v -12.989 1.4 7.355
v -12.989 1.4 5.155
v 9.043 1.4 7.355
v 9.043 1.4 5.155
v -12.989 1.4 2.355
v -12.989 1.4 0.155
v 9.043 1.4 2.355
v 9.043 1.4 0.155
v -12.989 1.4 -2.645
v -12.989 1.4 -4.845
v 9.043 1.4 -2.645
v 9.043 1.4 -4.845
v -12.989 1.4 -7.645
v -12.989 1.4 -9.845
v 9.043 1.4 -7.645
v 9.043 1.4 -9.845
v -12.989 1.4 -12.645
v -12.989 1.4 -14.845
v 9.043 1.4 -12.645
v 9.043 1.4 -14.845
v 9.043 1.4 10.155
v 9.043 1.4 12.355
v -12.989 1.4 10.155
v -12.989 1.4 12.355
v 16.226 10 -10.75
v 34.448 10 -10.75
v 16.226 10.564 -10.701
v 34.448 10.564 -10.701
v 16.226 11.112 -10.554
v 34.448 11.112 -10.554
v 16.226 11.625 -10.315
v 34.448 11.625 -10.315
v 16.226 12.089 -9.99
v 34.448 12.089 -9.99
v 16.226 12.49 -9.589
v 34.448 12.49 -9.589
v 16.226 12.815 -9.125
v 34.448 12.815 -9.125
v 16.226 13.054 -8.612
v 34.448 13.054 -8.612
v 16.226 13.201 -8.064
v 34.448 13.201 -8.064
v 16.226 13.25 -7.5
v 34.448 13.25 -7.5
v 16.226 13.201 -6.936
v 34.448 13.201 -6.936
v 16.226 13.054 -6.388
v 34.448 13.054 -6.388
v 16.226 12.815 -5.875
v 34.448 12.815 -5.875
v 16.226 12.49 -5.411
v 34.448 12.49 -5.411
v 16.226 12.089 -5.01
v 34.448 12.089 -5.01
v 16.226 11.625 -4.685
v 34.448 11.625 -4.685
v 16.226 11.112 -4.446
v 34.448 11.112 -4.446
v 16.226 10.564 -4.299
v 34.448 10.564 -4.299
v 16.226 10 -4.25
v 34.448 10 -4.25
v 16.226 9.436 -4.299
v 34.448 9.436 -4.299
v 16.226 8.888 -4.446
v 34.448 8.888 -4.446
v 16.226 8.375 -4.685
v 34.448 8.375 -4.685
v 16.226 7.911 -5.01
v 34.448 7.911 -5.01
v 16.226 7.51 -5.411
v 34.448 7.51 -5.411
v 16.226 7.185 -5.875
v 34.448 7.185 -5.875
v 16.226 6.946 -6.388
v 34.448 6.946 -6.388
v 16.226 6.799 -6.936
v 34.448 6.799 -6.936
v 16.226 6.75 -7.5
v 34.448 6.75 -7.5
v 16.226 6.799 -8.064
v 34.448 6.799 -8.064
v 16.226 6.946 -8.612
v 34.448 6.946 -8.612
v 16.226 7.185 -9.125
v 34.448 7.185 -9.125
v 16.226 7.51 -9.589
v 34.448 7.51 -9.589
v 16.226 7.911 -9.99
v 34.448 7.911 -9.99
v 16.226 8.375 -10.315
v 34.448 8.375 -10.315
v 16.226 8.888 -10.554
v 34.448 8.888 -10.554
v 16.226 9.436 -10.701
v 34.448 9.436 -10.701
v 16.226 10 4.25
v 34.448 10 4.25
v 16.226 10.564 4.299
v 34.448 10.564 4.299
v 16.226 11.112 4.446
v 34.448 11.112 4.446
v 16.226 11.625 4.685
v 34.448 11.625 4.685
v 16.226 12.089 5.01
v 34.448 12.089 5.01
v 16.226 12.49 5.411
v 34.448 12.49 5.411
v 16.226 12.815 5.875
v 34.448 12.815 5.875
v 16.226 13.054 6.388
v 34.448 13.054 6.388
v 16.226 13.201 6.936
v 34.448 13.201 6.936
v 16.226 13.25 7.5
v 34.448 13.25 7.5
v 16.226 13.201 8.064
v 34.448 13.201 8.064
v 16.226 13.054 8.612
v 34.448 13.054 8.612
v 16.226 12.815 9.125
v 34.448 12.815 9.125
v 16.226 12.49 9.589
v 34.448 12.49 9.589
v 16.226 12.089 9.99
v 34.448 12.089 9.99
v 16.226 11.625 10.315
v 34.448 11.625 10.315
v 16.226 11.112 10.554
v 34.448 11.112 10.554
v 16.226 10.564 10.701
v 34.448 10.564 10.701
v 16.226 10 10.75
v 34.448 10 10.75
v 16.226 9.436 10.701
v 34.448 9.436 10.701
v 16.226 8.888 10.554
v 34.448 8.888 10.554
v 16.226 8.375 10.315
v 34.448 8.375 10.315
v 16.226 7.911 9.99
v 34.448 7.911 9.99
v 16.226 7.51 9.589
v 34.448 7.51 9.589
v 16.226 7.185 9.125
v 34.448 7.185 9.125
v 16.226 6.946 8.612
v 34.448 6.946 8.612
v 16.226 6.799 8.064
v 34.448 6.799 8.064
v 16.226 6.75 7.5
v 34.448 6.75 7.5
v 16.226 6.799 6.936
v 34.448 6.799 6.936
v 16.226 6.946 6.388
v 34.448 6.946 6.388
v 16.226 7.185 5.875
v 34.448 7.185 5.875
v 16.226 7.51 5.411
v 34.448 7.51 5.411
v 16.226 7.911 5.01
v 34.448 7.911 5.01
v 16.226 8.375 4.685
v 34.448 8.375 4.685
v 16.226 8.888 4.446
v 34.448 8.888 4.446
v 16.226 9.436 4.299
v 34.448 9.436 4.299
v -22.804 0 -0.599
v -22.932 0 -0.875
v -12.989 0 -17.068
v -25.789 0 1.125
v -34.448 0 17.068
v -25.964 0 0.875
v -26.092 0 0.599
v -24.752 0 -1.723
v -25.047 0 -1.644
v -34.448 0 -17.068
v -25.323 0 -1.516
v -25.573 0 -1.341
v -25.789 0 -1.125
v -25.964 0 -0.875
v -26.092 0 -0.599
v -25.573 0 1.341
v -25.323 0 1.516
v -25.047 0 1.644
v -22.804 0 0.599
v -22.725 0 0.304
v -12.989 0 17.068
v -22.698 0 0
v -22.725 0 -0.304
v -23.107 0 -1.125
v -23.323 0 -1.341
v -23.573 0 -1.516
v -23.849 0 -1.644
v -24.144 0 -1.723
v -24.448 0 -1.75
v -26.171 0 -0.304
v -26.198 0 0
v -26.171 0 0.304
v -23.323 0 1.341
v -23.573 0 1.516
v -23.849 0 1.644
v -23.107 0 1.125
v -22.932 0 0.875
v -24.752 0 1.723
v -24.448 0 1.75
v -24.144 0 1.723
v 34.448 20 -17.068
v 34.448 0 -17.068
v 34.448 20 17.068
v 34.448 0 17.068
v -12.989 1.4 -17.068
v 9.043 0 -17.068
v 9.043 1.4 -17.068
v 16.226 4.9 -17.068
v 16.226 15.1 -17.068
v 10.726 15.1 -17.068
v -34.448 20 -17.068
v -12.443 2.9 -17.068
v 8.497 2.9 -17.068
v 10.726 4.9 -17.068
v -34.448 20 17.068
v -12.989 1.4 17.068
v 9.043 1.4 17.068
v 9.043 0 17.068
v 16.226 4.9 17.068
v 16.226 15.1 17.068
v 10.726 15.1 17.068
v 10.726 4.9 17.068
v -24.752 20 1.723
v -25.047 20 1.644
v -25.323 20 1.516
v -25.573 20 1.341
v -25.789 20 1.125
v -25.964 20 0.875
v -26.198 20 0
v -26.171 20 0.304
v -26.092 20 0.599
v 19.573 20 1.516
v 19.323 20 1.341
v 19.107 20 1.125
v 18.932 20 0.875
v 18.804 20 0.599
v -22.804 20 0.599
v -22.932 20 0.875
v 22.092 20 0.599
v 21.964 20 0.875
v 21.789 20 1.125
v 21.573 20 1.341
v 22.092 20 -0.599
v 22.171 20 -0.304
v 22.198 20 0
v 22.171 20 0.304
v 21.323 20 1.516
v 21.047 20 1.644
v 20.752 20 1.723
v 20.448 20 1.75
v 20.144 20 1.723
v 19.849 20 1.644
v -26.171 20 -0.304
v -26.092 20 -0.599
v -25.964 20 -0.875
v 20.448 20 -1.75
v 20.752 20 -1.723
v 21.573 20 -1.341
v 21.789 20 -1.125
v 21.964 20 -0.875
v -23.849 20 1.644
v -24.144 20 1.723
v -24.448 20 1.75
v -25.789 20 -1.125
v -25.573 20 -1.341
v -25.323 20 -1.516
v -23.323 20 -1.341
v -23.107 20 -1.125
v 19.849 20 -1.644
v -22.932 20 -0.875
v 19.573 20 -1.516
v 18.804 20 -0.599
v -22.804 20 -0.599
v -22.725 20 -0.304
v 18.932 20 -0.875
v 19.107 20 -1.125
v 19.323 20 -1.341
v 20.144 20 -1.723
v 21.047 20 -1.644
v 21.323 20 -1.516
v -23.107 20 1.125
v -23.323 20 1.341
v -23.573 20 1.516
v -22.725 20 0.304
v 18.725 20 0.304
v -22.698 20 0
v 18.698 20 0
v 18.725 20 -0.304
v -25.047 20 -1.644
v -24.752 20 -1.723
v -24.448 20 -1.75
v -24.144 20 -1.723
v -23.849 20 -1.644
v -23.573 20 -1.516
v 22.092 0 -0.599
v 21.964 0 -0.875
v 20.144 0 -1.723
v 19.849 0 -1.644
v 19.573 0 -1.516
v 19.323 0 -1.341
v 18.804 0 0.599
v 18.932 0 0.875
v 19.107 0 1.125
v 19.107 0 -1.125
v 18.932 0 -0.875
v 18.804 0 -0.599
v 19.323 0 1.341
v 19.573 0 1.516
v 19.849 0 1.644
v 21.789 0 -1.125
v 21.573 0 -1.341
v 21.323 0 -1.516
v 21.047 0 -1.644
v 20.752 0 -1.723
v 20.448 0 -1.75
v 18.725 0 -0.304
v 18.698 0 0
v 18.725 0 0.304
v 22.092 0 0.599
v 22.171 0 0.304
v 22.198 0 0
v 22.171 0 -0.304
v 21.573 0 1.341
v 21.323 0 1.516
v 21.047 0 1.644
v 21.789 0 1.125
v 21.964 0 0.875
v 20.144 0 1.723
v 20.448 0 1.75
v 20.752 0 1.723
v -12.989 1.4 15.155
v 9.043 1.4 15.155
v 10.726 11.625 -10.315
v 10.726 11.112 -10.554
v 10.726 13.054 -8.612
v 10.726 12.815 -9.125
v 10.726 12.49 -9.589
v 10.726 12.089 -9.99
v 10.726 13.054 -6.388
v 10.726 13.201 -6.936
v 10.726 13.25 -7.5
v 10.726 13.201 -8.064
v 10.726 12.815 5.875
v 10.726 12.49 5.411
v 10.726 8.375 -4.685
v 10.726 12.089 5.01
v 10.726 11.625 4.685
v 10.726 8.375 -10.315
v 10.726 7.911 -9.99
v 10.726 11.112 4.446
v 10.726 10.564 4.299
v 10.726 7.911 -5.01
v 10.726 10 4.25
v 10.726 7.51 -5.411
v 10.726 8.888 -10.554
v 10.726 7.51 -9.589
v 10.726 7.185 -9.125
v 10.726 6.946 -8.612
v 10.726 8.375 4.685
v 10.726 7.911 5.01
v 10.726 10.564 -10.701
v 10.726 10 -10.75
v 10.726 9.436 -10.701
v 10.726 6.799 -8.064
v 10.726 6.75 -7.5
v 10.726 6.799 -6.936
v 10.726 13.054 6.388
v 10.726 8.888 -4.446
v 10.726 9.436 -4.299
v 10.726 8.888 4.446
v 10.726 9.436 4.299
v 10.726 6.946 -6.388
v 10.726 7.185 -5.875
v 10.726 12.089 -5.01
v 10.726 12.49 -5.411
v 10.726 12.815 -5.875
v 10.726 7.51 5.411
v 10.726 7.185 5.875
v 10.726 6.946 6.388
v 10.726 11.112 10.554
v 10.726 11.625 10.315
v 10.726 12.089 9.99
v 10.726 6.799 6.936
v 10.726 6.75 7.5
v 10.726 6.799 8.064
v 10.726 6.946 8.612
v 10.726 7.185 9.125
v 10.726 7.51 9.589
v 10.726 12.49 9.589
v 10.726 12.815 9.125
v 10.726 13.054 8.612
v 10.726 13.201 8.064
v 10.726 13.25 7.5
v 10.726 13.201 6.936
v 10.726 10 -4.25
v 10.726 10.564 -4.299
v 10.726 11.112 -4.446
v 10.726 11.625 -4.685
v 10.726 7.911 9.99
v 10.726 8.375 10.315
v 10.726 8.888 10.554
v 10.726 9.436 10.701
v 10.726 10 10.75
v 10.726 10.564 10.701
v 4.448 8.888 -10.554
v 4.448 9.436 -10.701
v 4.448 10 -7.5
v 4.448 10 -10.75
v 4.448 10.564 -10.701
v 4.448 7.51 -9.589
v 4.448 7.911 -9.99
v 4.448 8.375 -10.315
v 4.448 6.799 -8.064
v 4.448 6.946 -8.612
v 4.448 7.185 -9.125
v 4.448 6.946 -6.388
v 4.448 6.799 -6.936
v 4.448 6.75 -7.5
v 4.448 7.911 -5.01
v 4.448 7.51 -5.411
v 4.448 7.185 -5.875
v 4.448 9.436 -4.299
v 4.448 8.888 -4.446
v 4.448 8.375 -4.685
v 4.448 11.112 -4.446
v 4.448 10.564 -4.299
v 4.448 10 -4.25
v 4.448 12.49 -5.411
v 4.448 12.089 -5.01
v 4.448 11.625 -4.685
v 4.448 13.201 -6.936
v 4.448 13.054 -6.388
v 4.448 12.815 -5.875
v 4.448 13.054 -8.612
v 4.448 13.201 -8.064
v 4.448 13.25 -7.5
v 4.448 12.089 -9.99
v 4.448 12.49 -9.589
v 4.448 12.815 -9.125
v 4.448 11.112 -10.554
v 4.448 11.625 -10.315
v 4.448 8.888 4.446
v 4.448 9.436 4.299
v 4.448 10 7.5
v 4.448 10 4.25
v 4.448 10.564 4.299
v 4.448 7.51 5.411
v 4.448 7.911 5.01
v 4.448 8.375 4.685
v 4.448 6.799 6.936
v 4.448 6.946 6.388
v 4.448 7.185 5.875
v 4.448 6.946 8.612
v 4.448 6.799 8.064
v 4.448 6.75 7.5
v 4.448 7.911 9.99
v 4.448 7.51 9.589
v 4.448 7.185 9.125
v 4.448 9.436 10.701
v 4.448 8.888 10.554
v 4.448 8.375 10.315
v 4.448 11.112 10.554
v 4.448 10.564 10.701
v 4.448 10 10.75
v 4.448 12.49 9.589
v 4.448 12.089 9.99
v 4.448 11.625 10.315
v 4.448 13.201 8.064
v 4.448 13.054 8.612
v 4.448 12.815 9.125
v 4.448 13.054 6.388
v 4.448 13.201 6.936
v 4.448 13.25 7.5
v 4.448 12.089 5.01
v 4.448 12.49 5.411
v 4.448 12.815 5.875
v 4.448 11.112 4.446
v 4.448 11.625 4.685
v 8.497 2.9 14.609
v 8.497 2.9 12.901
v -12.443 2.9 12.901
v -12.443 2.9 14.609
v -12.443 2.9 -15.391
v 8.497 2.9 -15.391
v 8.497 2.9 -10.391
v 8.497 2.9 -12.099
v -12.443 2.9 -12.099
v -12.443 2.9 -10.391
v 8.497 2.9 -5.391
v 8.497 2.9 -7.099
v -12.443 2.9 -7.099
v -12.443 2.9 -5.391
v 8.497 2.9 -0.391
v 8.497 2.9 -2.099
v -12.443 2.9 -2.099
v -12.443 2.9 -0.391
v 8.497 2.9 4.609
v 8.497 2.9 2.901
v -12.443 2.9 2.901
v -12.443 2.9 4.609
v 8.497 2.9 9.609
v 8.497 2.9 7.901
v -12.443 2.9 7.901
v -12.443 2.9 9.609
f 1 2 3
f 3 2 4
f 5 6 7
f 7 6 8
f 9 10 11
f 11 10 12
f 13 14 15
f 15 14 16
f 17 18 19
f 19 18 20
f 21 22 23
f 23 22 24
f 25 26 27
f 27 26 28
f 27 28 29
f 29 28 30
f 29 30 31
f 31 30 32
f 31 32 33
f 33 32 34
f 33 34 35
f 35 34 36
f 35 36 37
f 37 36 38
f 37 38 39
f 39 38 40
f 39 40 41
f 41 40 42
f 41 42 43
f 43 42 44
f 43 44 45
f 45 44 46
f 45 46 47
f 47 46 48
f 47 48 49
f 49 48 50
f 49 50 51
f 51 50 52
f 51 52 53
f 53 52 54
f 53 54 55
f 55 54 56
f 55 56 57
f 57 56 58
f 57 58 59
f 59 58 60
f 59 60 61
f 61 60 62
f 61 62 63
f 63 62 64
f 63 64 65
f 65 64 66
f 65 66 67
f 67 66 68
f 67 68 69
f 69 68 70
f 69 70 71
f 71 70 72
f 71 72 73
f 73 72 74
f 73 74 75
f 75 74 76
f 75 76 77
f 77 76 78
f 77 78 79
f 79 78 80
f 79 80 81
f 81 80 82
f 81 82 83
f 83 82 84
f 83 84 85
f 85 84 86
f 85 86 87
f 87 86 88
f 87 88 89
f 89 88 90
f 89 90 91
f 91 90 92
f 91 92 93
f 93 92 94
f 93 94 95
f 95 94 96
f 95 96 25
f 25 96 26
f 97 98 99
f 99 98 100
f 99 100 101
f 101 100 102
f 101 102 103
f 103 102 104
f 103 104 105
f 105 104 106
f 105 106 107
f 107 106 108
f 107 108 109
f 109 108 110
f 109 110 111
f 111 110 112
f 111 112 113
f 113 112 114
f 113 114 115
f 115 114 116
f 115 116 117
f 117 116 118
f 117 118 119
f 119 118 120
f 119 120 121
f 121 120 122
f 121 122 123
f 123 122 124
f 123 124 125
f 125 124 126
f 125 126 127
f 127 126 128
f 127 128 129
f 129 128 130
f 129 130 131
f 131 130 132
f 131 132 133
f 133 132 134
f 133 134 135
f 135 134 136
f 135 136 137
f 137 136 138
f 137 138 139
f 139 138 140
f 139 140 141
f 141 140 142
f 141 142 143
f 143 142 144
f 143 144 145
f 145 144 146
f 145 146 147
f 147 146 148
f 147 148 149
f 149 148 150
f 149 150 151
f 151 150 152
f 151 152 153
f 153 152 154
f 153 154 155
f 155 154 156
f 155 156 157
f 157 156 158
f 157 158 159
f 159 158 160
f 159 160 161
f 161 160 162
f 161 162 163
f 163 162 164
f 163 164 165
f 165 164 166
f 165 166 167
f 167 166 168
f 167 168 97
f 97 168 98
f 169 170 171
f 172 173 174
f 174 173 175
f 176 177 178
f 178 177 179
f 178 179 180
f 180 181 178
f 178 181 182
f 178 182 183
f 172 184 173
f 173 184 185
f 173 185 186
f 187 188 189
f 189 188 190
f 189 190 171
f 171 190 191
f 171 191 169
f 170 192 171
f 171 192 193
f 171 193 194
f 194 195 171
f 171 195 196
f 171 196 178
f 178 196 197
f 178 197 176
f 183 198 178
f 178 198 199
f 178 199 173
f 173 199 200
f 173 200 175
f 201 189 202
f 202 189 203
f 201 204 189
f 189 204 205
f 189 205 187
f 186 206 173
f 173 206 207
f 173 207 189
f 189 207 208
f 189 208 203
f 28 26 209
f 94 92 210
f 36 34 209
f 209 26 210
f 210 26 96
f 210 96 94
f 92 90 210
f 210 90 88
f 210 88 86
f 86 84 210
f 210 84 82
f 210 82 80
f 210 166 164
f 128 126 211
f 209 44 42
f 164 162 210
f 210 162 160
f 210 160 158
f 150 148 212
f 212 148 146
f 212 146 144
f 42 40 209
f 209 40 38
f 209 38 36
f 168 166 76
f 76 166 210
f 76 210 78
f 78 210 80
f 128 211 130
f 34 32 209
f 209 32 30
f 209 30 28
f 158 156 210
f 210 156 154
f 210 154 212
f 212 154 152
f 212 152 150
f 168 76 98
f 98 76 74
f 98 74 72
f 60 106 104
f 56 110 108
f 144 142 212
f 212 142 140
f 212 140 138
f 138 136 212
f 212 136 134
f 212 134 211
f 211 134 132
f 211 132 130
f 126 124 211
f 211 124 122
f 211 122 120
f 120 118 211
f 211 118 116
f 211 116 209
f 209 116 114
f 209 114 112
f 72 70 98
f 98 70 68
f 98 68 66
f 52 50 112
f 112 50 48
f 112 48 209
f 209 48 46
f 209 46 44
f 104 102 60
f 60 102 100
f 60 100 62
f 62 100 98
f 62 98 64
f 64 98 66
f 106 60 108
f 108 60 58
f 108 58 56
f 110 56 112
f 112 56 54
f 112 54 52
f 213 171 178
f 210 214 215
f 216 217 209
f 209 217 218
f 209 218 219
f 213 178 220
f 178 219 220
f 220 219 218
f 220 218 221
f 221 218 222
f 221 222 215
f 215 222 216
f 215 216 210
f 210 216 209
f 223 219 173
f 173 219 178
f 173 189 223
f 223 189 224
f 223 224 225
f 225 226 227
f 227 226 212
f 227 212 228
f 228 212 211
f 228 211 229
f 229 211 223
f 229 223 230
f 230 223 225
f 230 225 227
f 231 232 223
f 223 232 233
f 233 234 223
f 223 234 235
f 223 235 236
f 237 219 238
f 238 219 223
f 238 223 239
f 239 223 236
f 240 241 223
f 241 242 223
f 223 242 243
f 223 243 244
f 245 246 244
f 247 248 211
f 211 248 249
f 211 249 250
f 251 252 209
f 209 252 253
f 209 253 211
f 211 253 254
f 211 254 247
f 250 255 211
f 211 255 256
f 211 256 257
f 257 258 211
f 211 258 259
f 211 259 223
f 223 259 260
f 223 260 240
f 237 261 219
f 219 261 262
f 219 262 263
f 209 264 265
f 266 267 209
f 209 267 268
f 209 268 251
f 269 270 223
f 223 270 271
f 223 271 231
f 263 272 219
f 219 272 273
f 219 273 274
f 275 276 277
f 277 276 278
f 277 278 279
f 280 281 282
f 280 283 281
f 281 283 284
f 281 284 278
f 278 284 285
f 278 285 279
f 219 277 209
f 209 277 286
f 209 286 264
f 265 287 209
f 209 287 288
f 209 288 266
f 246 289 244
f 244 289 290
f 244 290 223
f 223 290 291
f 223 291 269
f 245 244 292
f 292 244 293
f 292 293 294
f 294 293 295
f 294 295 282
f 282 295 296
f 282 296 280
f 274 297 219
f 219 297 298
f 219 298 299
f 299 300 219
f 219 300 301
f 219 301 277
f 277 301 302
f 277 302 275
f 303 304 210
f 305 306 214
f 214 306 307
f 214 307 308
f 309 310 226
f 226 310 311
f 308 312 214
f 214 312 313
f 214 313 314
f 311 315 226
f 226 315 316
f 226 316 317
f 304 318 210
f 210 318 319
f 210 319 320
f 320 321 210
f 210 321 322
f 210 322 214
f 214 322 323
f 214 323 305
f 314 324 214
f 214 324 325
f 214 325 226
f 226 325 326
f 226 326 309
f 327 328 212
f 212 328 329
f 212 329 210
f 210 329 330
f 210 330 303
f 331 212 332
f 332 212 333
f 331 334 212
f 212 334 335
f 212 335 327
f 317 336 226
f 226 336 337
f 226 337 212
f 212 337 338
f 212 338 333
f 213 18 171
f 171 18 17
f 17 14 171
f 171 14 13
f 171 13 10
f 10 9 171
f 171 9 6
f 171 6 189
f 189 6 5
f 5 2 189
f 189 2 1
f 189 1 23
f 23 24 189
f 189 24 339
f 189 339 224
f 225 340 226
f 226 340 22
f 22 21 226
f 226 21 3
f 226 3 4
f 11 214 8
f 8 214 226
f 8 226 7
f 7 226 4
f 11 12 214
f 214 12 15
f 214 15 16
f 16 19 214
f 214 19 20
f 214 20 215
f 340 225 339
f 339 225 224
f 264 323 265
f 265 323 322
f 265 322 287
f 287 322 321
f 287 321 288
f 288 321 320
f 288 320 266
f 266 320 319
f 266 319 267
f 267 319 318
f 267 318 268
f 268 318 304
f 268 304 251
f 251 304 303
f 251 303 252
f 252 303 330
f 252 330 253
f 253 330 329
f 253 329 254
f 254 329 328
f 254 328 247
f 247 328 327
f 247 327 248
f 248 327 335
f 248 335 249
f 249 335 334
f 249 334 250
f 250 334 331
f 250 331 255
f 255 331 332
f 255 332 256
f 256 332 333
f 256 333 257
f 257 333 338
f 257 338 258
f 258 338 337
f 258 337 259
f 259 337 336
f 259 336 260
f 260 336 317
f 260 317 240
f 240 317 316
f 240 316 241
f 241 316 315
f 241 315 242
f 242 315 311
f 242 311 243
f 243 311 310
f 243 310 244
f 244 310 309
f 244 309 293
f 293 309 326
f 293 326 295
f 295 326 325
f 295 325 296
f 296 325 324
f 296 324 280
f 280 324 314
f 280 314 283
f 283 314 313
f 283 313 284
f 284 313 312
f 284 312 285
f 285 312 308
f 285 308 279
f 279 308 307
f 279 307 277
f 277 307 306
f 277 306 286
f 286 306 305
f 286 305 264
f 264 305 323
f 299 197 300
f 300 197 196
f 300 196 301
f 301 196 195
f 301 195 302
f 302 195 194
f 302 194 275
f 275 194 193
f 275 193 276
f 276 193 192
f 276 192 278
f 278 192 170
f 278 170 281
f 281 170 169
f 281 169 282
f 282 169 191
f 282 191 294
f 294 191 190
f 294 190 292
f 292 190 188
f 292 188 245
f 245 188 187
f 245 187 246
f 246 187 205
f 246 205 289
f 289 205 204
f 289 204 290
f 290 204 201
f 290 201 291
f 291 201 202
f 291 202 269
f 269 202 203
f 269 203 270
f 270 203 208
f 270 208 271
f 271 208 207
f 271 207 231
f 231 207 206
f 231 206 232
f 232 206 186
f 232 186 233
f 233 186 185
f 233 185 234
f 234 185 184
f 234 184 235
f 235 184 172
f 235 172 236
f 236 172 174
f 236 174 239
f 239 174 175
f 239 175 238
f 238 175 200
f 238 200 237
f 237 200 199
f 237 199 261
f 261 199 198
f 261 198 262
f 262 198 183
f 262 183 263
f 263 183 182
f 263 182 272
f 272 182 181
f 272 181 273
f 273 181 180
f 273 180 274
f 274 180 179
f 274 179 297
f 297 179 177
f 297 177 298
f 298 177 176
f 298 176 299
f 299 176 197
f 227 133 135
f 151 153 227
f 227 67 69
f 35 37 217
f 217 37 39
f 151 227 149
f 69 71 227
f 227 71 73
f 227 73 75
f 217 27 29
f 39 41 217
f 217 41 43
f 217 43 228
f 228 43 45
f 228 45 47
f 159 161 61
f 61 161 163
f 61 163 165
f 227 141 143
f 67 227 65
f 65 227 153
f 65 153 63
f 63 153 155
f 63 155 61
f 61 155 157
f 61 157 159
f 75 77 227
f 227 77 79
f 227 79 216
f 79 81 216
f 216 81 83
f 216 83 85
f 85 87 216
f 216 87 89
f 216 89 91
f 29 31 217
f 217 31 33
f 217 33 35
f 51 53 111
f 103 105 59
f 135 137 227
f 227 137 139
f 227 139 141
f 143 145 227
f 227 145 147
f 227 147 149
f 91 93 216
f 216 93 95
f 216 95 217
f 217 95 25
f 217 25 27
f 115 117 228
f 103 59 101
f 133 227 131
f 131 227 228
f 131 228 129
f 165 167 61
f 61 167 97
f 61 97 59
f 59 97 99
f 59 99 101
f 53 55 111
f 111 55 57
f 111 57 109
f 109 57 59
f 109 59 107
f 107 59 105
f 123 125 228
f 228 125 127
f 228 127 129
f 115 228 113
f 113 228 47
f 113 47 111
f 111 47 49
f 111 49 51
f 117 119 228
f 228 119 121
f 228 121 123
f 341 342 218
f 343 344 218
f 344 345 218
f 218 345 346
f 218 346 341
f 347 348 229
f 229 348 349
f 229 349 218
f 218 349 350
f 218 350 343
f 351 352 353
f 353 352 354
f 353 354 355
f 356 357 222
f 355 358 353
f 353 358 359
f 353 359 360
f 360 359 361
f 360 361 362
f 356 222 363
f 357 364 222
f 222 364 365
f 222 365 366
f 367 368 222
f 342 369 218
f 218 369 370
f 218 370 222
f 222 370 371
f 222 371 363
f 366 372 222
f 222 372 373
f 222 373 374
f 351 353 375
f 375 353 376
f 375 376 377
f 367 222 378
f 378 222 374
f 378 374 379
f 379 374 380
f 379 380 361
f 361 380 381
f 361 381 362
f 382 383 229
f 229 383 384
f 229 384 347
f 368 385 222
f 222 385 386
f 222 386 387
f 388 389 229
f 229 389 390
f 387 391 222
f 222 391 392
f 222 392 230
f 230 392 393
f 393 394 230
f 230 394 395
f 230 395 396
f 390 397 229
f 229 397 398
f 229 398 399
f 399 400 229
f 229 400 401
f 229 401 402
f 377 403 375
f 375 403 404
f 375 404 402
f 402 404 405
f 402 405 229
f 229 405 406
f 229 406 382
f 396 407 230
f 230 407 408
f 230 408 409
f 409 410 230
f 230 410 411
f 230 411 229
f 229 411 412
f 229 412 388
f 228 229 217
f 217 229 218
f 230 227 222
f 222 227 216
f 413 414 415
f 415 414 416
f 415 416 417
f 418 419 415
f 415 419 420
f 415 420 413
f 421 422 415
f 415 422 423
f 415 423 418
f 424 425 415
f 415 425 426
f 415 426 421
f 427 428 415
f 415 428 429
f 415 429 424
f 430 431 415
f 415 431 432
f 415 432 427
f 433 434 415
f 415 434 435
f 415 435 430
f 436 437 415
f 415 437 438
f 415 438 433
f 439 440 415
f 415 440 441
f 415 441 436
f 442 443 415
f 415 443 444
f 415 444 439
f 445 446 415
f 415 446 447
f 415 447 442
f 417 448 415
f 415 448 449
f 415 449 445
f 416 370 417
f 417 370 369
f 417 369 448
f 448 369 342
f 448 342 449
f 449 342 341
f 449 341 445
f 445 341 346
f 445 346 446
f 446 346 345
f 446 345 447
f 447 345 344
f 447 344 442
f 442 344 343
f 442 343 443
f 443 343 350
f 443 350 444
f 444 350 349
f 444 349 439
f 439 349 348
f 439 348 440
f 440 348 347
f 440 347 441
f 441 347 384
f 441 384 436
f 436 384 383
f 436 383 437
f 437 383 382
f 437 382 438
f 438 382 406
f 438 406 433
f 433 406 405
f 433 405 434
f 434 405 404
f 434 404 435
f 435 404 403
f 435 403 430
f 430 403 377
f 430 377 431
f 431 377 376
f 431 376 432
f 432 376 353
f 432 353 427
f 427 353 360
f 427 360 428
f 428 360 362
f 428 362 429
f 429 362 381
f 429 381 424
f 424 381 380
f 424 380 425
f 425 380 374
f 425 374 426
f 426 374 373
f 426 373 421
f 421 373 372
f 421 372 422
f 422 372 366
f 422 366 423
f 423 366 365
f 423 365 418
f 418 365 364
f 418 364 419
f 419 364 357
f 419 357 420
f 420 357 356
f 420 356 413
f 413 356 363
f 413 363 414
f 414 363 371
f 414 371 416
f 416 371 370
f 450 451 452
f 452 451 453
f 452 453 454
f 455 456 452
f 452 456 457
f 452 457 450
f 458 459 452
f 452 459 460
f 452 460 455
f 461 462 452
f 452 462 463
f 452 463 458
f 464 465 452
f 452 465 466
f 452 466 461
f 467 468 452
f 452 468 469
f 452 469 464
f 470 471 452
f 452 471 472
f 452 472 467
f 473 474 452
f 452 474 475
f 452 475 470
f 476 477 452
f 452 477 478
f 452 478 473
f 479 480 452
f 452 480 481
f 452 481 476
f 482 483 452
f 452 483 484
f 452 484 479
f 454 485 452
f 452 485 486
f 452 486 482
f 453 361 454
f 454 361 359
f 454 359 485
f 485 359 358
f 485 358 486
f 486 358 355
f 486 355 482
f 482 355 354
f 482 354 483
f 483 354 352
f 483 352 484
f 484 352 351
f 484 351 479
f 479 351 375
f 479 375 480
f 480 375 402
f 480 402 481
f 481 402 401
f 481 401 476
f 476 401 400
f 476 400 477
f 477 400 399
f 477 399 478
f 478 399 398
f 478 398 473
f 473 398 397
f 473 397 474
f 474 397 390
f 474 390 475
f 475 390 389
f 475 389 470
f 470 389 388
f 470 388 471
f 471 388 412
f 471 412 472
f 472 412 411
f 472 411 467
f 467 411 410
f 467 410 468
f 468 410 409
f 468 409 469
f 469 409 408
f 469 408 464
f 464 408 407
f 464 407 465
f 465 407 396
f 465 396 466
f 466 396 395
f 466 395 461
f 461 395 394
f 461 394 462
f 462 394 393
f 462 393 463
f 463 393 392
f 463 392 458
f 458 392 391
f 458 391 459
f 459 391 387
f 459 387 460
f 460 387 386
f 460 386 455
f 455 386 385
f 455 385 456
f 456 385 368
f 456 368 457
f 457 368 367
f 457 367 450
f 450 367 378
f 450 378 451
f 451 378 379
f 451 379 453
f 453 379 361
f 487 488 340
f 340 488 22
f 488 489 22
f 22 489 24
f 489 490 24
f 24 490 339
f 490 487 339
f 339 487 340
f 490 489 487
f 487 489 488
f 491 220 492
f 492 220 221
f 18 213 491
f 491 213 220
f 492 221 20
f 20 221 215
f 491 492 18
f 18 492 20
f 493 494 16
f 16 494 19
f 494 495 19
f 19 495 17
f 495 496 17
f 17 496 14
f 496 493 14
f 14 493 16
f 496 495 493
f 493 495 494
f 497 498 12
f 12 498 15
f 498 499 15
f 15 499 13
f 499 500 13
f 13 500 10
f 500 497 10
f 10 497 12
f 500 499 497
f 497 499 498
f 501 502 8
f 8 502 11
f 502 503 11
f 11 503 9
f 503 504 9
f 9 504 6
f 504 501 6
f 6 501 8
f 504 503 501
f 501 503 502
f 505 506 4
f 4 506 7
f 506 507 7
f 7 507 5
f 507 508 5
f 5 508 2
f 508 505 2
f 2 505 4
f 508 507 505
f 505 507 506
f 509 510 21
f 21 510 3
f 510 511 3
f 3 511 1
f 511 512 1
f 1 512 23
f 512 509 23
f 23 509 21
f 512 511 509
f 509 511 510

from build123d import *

# Parameters (mm, degrees)
SKETCH1_W           = 68.896006058
SKETCH1_H           = 34.135361424
BOSS_EXTRUDE1_DEPTH = 20
CUT_EXTRUDE1_REACH  = 36.135
SKETCH2_W           = 22.032289941
SKETCH2_H           = 1.4
SKETCH7_R           = 3.25
CUT_EXTRUDE4_DEPTH  = 30
CUT_EXTRUDE5_REACH  = 22
SKETCH8_R           = 1.75
SKETCH9_W           = 5.5
SKETCH9_H           = 10.2
CUT_EXTRUDE6_DEPTH  = 35.135361425
SKETCH10_W          = 22.032289941
SKETCH10_H          = 2.8
CUT_EXTRUDE7_DEPTH  = 1.5
CUT_EXTRUDE7_TAPER  = 20
LPATTERN1_COUNT     = 7
LPATTERN1_PITCH     = 5


with BuildPart() as part:
    # Sketch1 → Boss-Extrude1 (new body)
    with BuildSketch(Plane(origin=(0, 0, 0), x_dir=(1, 0, 0), z_dir=(0, 1, 0))):
        Rectangle(SKETCH1_W, SKETCH1_H)
    extrude(amount=BOSS_EXTRUDE1_DEPTH)

    # Sketch2 → Cut-Extrude1 (cut, up to next)
    with BuildSketch(Plane(origin=(0, 0, -17.067680712), x_dir=(-1, 0, 0), z_dir=(0, 0, -1)), mode=Mode.PRIVATE) as cut_extrude1_sk1:
        with Locations((1.973306179, 0.7)):
            Rectangle(SKETCH2_W, SKETCH2_H)
    cut_extrude1_tool1 = extrude(cut_extrude1_sk1.sketch, amount=-CUT_EXTRUDE1_REACH, mode=Mode.PRIVATE) & part.part
    add(cut_extrude1_tool1.solids().sort_by_distance((-1.973306, 0.7, -17.067681))[0], mode=Mode.SUBTRACT)

    # Sketch7 → Cut-Extrude4 (cut)
    with BuildSketch(Plane(origin=(34.448003029, 0, 0), x_dir=(0, 0, -1), z_dir=(1, 0, 0))):
        with Locations((-7.5, 10)):
            Circle(SKETCH7_R)
        with Locations((7.5, 10)):
            Circle(SKETCH7_R)
    extrude(amount=-CUT_EXTRUDE4_DEPTH, mode=Mode.SUBTRACT)

    # Sketch8 → Cut-Extrude5 (cut, up to next)
    with BuildSketch(Plane.XZ, mode=Mode.PRIVATE) as cut_extrude5_sk1:
        with Locations((-24.448003029, 0)):
            Circle(SKETCH8_R)
    cut_extrude5_tool1 = extrude(cut_extrude5_sk1.sketch, amount=-CUT_EXTRUDE5_REACH, mode=Mode.PRIVATE) & part.part
    add(cut_extrude5_tool1.solids().sort_by_distance((-24.448003, 0, 0))[0], mode=Mode.SUBTRACT)
    # Sketch8 → Cut-Extrude5 (cut, up to next)
    with BuildSketch(Plane.XZ, mode=Mode.PRIVATE) as cut_extrude5_sk2:
        with Locations((20.448003029, 0)):
            Circle(SKETCH8_R)
    cut_extrude5_tool2 = extrude(cut_extrude5_sk2.sketch, amount=-CUT_EXTRUDE5_REACH, mode=Mode.PRIVATE) & part.part
    add(cut_extrude5_tool2.solids().sort_by_distance((20.448003, 0, 0))[0], mode=Mode.SUBTRACT)

    # Sketch9 → Cut-Extrude6 (cut, through all)
    with BuildSketch(Plane(origin=(0, 0, -17.067680712), x_dir=(-1, 0, 0), z_dir=(0, 0, -1))):
        with Locations((-13.475884112, 10)):
            Rectangle(SKETCH9_W, SKETCH9_H)
    extrude(amount=-CUT_EXTRUDE6_DEPTH, mode=Mode.SUBTRACT)

    # Sketch10 → Cut-Extrude7 (cut)
    with BuildSketch(Plane.XZ.offset(-1.4)):
        with Locations((-1.973306179, 13.755042689)):
            Rectangle(SKETCH10_W, SKETCH10_H)
    cut_extrude7 = extrude(amount=-CUT_EXTRUDE7_DEPTH, taper=CUT_EXTRUDE7_TAPER, mode=Mode.SUBTRACT)

    # LPattern1: Cut-Extrude7 ×7
    with Locations(*[(0, 0, -i * LPATTERN1_PITCH) for i in range(1, LPATTERN1_COUNT)]):
        add(cut_extrude7, mode=Mode.SUBTRACT)


solid = part.part
